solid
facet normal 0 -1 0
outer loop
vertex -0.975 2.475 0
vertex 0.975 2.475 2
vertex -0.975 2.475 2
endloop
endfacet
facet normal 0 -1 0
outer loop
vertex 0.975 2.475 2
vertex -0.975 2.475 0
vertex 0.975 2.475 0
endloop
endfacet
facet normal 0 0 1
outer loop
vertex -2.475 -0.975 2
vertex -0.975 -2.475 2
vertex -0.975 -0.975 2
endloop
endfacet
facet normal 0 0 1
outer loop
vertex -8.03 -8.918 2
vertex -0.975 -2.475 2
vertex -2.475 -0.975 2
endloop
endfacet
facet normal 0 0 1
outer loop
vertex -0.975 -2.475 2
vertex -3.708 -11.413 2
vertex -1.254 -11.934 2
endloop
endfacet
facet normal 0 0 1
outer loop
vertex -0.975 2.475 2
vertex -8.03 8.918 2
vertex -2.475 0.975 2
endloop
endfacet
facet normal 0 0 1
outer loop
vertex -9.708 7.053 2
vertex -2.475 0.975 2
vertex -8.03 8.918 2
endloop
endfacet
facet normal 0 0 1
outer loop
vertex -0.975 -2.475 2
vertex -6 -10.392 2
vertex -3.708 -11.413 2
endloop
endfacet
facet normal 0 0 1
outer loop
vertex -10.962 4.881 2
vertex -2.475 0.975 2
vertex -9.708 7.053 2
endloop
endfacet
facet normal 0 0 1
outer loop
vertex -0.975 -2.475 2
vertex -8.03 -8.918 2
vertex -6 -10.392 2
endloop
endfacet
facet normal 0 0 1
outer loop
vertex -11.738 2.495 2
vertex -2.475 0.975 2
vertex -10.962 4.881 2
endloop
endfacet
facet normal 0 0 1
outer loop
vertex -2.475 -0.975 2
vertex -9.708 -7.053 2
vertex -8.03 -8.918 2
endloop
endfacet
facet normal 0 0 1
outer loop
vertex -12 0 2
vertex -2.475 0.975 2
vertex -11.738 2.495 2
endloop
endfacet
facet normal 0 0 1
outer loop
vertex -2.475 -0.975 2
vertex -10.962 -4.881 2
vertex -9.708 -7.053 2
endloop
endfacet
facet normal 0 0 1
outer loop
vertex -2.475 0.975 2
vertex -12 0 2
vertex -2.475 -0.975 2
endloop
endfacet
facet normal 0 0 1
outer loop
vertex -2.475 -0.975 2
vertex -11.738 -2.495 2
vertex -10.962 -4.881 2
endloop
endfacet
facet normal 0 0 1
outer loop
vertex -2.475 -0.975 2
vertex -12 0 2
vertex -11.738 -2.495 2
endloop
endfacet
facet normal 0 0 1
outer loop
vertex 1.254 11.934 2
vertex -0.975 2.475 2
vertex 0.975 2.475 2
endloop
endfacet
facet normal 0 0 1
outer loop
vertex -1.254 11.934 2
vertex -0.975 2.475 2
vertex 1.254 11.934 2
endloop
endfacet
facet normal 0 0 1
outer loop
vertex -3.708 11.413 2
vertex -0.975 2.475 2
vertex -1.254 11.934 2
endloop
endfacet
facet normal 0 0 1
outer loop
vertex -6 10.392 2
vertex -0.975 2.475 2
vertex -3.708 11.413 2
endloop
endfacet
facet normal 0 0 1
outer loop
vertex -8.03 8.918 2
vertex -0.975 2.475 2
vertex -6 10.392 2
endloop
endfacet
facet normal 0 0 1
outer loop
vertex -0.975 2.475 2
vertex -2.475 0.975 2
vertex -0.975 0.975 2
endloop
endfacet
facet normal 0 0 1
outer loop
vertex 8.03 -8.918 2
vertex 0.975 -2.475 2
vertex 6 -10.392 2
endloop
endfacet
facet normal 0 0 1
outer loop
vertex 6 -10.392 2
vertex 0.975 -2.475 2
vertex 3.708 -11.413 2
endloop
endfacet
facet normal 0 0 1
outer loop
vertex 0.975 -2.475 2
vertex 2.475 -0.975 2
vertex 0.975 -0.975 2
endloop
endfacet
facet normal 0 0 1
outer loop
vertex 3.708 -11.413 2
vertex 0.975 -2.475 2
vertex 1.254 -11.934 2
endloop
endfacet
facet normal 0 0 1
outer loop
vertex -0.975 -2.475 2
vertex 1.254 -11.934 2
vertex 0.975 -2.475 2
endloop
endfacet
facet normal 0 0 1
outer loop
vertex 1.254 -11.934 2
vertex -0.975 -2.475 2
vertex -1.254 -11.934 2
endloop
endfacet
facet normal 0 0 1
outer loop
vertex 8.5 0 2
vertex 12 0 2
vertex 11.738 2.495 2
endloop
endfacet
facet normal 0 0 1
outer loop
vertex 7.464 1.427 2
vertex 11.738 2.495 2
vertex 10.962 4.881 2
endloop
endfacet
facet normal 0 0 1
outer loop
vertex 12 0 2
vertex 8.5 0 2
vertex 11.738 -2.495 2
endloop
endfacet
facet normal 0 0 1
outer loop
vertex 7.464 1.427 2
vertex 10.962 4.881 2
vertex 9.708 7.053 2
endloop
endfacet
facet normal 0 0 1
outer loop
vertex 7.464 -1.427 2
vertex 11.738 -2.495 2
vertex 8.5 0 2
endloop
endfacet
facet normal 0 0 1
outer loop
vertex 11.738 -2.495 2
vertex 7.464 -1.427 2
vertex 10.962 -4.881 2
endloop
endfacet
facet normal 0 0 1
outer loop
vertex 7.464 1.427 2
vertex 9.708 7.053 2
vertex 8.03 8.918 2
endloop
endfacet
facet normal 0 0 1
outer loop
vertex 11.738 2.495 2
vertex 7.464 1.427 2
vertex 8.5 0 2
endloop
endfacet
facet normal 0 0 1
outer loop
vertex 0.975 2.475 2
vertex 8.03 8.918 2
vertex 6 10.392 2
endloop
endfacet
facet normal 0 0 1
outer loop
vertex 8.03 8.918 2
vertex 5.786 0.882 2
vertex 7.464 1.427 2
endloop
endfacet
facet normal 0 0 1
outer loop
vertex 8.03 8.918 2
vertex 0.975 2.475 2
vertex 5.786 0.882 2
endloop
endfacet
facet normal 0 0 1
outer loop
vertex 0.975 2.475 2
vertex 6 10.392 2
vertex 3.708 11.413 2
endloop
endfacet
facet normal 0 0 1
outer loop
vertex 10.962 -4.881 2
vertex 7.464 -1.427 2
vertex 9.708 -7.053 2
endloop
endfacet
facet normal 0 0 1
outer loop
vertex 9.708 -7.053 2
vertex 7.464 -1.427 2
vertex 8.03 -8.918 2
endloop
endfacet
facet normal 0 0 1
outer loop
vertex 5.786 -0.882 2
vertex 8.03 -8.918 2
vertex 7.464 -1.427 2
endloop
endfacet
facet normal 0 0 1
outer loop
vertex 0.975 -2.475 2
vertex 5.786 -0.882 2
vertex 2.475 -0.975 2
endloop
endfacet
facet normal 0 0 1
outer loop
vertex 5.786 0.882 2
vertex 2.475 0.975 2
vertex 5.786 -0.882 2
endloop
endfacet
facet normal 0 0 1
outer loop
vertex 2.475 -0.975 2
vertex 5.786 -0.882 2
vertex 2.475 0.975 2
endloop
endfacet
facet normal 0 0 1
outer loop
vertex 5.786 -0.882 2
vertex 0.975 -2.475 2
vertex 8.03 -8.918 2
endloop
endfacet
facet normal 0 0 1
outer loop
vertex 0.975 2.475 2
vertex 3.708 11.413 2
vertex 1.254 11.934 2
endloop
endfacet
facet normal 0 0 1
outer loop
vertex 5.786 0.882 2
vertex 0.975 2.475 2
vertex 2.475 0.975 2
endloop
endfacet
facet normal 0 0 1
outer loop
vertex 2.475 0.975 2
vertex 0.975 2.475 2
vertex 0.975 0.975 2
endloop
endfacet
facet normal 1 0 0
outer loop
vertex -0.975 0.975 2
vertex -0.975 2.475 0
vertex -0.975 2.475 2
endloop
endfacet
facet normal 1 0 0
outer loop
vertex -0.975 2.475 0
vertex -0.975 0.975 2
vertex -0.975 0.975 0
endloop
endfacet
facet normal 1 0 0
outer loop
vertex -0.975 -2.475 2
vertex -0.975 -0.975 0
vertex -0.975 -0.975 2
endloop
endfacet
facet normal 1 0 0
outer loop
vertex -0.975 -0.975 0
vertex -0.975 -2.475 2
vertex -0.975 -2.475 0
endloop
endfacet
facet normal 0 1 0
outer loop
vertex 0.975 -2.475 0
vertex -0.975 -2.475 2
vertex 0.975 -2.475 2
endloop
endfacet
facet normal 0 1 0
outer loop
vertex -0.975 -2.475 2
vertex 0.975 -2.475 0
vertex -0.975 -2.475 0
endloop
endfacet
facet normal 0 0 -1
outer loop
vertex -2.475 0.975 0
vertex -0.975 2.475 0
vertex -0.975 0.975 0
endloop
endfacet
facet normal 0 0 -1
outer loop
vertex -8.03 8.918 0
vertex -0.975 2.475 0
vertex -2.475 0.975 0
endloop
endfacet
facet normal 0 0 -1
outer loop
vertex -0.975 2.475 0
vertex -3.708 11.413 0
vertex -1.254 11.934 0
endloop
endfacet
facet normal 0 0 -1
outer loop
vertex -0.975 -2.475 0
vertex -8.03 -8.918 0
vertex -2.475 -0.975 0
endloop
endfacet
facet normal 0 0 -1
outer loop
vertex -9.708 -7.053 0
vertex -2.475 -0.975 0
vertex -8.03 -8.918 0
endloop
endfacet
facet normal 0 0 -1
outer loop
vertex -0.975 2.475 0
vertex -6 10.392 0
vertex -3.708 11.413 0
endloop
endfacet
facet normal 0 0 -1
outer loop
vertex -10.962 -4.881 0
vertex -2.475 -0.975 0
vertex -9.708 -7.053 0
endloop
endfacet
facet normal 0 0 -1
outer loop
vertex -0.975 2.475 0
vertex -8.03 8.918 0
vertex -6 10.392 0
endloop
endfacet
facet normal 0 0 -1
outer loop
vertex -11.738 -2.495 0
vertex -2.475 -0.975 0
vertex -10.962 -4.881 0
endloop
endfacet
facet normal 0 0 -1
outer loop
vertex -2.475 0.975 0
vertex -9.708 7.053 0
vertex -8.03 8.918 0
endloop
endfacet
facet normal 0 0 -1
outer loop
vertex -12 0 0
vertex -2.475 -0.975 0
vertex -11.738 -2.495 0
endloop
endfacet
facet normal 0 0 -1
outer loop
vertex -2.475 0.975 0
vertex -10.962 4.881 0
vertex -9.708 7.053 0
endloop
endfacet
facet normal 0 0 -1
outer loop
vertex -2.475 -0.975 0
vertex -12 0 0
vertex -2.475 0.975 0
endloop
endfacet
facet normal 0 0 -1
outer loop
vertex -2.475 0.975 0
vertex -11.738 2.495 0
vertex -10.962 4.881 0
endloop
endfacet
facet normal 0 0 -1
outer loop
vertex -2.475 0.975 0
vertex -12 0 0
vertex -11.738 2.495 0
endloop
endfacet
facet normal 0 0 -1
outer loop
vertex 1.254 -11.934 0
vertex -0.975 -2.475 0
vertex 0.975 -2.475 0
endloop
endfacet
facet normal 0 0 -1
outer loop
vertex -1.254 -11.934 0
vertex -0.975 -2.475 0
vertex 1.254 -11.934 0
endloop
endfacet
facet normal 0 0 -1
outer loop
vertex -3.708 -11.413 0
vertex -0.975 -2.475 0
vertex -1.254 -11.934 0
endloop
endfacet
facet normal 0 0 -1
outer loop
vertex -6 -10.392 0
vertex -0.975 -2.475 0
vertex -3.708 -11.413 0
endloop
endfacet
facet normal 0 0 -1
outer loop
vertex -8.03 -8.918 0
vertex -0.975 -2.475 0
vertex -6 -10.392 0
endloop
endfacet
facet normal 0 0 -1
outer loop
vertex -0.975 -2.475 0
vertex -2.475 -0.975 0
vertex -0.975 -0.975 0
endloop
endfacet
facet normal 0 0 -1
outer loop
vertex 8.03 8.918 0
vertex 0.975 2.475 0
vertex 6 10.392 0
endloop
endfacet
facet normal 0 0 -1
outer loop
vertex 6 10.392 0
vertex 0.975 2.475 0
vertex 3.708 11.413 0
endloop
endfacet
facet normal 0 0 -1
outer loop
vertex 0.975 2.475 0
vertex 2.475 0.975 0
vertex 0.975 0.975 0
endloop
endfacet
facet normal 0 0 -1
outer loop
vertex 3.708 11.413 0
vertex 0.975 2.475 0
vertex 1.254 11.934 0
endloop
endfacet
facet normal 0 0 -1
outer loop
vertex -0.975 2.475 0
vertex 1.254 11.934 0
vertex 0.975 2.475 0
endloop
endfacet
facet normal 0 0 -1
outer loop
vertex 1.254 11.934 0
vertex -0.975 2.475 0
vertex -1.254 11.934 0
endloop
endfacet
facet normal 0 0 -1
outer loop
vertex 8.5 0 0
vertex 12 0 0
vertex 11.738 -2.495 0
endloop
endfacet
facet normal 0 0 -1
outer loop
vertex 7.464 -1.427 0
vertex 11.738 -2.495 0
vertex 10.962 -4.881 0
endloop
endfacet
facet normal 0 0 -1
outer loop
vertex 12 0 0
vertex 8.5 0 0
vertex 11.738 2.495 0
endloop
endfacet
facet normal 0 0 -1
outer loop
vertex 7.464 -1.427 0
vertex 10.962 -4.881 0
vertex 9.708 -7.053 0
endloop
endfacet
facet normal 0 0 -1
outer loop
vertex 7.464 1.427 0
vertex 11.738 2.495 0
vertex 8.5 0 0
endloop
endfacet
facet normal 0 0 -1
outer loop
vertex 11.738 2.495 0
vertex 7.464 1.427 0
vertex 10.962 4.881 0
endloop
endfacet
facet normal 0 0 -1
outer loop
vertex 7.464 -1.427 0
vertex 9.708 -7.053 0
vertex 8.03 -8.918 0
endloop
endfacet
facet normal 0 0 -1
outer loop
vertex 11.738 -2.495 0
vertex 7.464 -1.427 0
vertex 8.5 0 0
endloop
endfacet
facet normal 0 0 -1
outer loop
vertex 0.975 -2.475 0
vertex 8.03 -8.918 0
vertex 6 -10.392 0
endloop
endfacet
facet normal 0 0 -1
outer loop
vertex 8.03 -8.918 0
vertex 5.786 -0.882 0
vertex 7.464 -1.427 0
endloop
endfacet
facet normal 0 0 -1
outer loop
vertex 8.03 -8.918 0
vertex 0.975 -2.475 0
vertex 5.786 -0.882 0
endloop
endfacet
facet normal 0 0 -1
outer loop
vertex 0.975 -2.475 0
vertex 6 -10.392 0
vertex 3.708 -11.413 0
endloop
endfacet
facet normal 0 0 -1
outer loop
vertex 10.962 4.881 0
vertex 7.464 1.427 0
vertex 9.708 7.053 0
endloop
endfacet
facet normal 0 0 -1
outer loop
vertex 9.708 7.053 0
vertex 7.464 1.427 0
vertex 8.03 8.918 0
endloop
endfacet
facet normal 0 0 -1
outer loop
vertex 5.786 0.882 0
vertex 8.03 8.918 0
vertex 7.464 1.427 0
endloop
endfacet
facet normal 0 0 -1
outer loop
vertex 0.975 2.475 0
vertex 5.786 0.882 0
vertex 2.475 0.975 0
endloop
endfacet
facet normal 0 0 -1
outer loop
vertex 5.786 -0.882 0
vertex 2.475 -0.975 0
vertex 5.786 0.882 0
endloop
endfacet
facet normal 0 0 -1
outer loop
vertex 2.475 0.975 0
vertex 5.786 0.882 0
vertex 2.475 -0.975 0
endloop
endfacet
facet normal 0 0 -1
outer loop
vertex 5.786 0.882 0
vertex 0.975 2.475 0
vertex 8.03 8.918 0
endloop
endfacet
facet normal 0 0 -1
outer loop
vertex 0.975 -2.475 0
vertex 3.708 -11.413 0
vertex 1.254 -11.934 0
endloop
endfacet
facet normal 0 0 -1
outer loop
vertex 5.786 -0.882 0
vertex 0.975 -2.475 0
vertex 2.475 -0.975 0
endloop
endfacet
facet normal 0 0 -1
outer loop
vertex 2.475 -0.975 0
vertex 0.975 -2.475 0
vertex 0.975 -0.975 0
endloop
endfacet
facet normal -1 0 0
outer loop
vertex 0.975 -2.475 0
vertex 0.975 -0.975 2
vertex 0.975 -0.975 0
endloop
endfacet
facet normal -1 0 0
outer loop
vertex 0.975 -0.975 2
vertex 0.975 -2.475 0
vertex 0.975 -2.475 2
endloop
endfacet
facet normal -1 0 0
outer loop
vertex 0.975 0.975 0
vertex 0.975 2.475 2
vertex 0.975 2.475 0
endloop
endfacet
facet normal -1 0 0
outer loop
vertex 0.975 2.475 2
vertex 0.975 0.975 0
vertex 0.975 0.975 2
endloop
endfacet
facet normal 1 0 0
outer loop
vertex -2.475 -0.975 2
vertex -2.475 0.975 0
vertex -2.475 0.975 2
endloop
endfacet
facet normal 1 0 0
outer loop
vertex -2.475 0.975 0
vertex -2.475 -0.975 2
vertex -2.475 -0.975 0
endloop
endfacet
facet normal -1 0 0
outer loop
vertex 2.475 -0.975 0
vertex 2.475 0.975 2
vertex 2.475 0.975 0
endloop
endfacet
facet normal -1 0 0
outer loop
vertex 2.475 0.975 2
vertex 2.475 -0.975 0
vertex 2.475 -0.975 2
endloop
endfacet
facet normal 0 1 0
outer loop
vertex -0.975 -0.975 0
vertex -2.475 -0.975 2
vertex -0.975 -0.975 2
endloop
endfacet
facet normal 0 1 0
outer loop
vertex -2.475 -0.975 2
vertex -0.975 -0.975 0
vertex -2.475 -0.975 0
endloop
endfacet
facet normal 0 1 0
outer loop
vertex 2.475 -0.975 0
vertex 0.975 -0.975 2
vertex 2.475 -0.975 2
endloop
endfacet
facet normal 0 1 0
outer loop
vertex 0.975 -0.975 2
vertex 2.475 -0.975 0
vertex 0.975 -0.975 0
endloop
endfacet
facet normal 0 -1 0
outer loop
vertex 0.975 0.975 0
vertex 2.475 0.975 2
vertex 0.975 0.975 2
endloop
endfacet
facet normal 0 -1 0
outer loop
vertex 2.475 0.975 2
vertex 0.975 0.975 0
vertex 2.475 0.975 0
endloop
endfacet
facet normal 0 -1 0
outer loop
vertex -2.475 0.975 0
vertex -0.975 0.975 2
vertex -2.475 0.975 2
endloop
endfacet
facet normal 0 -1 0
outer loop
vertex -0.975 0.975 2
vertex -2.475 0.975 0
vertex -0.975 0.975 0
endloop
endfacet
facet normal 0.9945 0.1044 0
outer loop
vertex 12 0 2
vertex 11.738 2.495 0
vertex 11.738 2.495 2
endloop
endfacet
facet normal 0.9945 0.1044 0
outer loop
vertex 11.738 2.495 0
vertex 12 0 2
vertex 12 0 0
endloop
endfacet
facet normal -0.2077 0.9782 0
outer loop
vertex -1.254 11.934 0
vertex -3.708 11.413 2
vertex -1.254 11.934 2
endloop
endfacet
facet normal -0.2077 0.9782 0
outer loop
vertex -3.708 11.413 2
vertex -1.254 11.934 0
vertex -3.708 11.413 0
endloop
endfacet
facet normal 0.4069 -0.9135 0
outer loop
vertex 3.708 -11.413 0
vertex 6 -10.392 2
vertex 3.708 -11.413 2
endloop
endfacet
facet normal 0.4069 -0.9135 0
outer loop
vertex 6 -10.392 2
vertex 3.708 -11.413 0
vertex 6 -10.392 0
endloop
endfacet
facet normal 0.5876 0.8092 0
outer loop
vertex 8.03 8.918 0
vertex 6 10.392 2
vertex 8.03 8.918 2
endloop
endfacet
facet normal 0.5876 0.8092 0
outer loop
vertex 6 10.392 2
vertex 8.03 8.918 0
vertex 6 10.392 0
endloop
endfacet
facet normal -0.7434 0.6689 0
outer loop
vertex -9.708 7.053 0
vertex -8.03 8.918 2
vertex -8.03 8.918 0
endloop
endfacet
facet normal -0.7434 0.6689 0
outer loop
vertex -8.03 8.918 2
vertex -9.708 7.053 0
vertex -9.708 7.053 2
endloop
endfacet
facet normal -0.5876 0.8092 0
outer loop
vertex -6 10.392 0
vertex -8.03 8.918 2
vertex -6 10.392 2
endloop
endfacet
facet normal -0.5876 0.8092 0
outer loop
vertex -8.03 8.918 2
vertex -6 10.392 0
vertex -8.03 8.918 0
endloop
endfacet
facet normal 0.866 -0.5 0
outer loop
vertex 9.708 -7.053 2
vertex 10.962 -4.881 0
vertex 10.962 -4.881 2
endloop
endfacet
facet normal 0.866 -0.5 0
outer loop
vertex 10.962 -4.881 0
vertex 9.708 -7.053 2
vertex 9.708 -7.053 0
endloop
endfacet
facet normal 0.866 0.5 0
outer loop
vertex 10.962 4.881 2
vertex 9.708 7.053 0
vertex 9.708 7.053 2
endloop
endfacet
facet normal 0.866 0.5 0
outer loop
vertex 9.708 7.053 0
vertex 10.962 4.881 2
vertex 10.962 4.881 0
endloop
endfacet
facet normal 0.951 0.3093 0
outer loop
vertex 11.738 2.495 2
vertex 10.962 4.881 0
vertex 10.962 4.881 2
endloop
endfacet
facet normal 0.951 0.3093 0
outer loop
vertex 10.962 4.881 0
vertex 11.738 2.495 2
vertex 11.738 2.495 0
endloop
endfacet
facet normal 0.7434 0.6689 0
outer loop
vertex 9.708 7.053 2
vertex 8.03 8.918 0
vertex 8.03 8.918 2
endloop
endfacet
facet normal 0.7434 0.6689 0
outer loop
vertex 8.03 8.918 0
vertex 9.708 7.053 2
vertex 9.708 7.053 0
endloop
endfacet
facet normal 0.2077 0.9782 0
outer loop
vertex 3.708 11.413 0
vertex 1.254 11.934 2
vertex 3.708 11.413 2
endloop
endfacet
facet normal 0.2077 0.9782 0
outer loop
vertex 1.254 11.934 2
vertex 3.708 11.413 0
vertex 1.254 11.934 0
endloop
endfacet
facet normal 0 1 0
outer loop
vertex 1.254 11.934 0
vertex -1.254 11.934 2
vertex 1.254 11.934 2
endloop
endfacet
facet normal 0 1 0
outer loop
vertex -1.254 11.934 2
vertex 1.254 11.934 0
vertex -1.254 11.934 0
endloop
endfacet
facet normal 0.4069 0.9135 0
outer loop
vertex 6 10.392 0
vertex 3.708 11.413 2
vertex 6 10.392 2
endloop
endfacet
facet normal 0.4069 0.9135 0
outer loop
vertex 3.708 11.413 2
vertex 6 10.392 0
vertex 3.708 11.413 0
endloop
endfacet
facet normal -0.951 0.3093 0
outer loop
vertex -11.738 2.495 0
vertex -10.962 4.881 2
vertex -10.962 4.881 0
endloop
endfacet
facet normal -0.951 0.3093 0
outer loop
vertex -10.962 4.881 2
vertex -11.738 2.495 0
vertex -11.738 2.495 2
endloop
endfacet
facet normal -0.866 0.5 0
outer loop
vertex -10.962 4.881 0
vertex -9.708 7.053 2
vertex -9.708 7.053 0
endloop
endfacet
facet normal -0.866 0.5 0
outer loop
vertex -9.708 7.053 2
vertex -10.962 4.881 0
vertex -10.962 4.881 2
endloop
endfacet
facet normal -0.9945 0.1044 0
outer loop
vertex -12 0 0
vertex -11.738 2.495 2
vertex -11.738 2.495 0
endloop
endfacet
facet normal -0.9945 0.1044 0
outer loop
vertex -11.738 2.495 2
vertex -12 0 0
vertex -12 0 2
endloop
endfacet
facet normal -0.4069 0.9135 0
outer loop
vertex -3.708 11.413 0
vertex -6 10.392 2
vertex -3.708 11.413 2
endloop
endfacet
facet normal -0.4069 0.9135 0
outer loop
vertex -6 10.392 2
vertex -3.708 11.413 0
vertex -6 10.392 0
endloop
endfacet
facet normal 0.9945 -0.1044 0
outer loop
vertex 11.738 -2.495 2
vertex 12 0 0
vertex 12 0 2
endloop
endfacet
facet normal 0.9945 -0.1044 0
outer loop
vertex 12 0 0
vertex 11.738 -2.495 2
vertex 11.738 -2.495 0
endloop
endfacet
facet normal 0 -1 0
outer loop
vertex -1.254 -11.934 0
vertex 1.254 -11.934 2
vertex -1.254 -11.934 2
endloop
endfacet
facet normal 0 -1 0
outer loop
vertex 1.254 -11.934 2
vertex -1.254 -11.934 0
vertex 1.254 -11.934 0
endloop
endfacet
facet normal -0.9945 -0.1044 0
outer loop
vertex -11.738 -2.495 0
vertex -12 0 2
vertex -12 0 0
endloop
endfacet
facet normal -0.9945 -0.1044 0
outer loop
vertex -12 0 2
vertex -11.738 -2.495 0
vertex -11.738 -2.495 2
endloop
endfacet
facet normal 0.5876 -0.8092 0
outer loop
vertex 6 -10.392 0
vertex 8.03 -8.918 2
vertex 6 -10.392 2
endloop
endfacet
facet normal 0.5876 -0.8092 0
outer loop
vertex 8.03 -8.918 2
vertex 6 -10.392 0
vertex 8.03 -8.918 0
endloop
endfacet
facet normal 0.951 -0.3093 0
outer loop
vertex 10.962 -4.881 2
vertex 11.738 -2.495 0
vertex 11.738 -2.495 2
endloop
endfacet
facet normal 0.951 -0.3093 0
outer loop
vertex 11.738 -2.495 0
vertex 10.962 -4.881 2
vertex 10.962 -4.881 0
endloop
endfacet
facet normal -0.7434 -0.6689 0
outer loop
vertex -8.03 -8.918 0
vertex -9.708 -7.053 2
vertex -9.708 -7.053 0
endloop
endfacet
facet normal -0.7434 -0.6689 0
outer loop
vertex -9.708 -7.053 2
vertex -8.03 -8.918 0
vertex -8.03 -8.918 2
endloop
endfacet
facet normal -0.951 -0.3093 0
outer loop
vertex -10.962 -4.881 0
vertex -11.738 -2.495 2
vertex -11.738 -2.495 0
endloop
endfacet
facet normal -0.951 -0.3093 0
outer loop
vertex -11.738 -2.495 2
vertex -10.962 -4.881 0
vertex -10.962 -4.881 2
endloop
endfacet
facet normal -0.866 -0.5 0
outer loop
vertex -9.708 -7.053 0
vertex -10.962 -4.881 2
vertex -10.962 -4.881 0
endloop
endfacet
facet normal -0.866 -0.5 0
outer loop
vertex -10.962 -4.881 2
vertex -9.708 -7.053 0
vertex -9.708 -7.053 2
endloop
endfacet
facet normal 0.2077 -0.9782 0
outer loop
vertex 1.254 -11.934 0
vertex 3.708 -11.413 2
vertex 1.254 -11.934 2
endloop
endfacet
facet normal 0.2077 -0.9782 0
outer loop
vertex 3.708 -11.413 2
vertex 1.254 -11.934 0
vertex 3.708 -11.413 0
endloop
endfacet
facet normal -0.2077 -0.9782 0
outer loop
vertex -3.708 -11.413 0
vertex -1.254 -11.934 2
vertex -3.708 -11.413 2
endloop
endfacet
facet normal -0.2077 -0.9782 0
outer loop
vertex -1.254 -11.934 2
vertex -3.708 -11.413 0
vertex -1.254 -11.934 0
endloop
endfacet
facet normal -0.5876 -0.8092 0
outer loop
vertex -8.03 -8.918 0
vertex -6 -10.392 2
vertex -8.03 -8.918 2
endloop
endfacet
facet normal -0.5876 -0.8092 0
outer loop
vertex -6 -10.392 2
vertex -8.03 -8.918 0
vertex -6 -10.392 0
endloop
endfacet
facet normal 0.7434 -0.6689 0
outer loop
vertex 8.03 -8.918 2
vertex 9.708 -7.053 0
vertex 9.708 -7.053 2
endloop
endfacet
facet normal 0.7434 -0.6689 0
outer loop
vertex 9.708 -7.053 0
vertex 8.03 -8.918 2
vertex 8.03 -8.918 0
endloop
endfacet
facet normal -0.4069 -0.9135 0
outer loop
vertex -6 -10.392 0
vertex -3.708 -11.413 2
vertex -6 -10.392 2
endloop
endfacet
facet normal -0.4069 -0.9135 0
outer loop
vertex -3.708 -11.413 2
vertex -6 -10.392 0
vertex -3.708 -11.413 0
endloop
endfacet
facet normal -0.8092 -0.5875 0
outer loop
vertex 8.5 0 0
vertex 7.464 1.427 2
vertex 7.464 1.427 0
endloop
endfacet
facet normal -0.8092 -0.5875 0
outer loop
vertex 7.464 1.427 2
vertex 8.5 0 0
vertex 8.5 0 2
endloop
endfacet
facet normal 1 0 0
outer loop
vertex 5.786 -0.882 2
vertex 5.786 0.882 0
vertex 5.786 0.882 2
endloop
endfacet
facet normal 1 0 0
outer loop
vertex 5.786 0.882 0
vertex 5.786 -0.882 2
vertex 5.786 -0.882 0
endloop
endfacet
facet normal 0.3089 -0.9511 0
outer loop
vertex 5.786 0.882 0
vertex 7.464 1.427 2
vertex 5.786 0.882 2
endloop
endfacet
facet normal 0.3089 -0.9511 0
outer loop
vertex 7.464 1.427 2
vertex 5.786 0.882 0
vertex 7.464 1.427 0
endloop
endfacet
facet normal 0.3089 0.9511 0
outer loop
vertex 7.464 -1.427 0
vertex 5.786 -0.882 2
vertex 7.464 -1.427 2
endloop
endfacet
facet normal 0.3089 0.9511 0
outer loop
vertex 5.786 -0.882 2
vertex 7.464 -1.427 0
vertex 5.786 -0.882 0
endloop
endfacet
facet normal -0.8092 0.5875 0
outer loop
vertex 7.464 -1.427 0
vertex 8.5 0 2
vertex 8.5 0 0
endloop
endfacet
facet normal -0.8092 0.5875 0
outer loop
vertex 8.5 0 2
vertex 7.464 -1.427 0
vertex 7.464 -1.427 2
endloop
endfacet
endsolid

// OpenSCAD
// file: ../lego/axle.scad
// A basic LEGO-compatible axle
// not endorsed by LEGO blah blah blah copyright

// Note: Axle size is approximate and primarilly intended for creating sockets

module axle(length)
{
    if(length > 5)
    {
        height = 5.25;
        width = 2.25;

        make_axle(height, width, length);
    }
    else
    {
        height = 4.95;
        width = 1.95;

        make_axle(height, width, length);
    }
}

module make_axle(height, width, length)
{
    translate([0, 0, length / 2])
    {
        rotate([0, 0, 90])
        cube([height, width, length], center = true);
        cube([height, width, length], center = true);
    }
}

// Example axle
translate([15, 0, 0])
axle(40);

// Example socket
difference()
{
    cylinder(r = 10, h = 2);
    axle(40);
}
// main file
use <../lego/axle.scad>;

// End piece to tie string
difference()
{
    cylinder(r = 12, h = 2);
    
    translate([7, 0, 0])
    cylinder(r = 1.5, h = 2);
    
    axle(2);
}
